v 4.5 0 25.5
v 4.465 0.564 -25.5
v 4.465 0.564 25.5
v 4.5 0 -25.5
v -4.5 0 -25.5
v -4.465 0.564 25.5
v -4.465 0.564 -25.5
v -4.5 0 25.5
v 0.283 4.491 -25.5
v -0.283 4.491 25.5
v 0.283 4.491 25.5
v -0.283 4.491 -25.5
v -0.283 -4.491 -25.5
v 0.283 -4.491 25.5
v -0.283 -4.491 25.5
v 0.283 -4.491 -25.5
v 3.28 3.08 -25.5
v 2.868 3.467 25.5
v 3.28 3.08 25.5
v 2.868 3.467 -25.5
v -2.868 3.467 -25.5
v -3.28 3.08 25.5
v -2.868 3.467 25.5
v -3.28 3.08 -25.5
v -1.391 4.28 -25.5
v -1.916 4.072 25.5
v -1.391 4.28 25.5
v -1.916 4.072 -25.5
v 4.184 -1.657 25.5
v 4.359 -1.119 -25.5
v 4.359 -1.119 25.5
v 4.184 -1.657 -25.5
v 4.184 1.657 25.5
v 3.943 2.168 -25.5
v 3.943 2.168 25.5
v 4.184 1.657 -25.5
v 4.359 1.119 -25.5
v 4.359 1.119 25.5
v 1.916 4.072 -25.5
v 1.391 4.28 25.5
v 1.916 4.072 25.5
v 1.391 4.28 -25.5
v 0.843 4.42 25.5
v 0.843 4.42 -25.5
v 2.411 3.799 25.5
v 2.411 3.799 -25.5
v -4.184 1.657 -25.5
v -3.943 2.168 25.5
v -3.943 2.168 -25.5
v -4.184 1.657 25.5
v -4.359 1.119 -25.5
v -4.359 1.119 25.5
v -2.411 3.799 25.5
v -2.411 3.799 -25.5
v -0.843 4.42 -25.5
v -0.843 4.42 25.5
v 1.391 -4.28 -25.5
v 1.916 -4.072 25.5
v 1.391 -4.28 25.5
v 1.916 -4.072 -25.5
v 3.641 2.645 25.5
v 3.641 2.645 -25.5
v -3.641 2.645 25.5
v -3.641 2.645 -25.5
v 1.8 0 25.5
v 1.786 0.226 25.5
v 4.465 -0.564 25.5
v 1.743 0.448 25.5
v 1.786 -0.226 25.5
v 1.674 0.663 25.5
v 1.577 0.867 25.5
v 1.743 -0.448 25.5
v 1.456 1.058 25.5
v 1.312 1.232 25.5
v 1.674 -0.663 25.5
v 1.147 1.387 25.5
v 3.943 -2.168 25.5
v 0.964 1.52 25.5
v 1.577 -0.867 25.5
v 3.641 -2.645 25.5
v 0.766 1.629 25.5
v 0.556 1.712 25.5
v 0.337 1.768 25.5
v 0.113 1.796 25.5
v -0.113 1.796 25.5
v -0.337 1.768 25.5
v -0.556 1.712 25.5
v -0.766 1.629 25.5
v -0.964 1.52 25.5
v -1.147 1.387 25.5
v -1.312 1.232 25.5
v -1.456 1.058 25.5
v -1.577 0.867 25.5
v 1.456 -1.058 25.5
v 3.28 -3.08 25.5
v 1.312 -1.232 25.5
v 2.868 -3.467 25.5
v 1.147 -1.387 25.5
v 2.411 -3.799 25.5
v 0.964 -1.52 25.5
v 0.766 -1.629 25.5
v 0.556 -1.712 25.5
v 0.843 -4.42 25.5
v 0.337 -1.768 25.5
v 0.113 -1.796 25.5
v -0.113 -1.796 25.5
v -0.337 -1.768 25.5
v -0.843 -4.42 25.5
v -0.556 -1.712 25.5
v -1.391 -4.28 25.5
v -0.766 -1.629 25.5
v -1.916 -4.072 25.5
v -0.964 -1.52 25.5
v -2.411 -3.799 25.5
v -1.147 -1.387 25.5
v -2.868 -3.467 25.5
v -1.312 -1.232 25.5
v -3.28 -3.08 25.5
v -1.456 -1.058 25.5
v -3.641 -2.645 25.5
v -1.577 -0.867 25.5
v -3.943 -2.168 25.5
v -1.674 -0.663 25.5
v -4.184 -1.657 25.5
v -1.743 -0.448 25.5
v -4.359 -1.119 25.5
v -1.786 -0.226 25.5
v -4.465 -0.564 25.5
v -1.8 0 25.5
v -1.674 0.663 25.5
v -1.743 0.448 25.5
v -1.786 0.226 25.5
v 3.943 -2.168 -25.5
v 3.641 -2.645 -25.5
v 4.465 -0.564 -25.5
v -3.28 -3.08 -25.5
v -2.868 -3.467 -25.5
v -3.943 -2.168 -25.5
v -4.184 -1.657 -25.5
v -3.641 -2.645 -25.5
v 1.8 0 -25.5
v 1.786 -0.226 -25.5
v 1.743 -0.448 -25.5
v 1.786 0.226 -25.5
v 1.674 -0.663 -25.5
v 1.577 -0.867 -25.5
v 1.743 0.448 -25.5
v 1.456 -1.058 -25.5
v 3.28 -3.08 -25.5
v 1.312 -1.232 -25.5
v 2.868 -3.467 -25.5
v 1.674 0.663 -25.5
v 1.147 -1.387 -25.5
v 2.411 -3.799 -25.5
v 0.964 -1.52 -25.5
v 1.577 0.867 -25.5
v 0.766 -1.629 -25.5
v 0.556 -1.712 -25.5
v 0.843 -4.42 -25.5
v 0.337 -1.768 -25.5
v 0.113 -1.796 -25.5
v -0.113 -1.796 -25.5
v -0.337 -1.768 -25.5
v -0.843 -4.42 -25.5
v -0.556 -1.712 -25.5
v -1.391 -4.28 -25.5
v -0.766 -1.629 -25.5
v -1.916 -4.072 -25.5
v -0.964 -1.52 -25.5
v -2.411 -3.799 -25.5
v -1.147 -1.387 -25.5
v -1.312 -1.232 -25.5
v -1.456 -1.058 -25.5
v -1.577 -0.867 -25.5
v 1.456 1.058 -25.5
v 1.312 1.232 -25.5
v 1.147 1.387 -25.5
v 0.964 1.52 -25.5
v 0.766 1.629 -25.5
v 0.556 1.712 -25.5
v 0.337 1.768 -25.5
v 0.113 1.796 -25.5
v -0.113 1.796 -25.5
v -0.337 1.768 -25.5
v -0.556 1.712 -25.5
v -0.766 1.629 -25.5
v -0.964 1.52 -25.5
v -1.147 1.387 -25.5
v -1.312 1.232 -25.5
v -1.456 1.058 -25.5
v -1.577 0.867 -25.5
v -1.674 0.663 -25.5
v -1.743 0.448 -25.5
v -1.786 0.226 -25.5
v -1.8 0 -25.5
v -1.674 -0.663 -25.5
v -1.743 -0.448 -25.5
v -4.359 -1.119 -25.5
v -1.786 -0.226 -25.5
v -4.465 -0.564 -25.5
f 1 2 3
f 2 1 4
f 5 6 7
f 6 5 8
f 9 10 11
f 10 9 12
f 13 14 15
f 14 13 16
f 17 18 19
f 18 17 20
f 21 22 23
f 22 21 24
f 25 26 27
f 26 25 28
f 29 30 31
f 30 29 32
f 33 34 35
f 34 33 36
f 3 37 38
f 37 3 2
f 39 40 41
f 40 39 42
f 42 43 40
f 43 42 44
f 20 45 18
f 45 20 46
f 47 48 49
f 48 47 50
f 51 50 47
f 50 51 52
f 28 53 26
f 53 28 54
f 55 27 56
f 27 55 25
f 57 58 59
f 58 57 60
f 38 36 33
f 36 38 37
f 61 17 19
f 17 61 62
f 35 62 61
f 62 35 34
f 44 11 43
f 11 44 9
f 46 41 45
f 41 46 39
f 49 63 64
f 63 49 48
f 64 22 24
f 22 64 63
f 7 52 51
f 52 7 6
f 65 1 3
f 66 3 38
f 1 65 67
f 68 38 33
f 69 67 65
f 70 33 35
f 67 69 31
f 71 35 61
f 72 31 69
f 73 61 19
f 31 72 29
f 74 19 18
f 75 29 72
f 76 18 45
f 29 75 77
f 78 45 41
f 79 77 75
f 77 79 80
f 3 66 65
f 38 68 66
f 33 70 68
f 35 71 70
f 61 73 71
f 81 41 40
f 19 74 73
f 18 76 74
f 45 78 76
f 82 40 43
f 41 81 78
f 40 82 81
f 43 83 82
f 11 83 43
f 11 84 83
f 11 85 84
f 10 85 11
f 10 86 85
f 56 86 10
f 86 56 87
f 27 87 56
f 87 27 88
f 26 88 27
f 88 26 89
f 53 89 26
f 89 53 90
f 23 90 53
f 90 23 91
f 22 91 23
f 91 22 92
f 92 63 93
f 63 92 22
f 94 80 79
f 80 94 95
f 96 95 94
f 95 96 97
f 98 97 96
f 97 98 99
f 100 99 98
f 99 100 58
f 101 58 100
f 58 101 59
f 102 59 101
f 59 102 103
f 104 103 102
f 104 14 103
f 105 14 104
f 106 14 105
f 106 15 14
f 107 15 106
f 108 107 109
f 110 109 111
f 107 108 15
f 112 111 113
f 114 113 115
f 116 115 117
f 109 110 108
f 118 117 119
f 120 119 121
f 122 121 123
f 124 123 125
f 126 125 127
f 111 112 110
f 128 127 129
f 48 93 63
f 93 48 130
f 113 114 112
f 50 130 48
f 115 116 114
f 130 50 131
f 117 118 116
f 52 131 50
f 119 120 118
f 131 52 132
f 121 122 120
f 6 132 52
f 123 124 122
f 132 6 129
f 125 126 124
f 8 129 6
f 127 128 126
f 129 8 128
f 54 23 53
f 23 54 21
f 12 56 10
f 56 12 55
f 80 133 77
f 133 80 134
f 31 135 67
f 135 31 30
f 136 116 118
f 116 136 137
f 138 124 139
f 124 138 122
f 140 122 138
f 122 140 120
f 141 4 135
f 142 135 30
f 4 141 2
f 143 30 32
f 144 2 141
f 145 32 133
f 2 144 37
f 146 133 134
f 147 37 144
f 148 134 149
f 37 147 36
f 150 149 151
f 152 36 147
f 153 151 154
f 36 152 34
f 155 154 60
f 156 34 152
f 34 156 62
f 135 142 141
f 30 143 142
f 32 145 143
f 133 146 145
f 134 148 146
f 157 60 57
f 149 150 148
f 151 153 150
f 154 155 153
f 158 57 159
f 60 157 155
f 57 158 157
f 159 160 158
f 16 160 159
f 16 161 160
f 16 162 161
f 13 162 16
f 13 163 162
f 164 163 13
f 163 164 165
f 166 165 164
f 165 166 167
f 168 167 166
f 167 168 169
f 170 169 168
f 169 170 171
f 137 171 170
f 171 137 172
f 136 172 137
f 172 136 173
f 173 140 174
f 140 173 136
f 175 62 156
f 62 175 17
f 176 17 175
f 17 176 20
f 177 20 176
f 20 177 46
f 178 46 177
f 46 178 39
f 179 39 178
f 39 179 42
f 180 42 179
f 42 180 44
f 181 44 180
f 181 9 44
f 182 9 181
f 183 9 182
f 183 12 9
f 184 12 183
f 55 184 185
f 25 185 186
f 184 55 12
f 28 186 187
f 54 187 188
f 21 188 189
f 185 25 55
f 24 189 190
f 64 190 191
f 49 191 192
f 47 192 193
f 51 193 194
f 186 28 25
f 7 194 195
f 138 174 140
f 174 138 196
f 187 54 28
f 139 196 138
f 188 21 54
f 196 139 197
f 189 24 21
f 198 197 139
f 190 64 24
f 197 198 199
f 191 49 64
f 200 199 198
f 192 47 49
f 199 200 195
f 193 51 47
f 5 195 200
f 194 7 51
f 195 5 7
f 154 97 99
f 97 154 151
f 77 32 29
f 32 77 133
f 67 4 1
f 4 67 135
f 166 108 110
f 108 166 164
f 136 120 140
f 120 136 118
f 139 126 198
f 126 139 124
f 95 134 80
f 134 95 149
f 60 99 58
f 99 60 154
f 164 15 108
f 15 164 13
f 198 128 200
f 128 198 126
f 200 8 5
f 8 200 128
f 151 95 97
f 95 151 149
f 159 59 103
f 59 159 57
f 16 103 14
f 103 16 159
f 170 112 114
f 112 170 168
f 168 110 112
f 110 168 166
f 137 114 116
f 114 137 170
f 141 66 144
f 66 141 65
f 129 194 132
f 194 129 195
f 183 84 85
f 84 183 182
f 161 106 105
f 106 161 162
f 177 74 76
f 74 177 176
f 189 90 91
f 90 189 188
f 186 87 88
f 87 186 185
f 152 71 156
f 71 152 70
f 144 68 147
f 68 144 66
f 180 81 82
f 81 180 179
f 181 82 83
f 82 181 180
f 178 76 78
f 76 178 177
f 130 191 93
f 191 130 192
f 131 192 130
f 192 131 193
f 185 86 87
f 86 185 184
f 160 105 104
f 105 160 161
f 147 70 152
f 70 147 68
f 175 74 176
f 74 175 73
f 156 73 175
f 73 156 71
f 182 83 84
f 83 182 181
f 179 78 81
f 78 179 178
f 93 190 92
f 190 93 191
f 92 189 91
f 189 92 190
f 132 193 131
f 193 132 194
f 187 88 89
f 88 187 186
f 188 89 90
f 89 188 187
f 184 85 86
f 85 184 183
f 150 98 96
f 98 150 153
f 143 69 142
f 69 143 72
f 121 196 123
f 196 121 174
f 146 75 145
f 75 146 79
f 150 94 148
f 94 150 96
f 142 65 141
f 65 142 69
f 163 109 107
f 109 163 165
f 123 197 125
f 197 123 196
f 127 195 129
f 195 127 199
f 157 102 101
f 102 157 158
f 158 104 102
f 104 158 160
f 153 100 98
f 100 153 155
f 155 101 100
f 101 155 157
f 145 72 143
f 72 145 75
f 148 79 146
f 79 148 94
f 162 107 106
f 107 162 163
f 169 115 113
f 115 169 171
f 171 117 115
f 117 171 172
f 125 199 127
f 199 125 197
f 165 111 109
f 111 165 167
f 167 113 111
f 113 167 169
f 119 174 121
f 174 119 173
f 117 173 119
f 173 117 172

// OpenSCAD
$fn = 50;


difference() {
	union() {
		translate(v = [0, 0, -25.5000000000]) {
			cylinder(h = 51, r = 4.5000000000);
		}
	}
	union() {
		translate(v = [0, 0, -100.0000000000]) {
			cylinder(h = 200, r = 1.8000000000);
		}
	}
}
